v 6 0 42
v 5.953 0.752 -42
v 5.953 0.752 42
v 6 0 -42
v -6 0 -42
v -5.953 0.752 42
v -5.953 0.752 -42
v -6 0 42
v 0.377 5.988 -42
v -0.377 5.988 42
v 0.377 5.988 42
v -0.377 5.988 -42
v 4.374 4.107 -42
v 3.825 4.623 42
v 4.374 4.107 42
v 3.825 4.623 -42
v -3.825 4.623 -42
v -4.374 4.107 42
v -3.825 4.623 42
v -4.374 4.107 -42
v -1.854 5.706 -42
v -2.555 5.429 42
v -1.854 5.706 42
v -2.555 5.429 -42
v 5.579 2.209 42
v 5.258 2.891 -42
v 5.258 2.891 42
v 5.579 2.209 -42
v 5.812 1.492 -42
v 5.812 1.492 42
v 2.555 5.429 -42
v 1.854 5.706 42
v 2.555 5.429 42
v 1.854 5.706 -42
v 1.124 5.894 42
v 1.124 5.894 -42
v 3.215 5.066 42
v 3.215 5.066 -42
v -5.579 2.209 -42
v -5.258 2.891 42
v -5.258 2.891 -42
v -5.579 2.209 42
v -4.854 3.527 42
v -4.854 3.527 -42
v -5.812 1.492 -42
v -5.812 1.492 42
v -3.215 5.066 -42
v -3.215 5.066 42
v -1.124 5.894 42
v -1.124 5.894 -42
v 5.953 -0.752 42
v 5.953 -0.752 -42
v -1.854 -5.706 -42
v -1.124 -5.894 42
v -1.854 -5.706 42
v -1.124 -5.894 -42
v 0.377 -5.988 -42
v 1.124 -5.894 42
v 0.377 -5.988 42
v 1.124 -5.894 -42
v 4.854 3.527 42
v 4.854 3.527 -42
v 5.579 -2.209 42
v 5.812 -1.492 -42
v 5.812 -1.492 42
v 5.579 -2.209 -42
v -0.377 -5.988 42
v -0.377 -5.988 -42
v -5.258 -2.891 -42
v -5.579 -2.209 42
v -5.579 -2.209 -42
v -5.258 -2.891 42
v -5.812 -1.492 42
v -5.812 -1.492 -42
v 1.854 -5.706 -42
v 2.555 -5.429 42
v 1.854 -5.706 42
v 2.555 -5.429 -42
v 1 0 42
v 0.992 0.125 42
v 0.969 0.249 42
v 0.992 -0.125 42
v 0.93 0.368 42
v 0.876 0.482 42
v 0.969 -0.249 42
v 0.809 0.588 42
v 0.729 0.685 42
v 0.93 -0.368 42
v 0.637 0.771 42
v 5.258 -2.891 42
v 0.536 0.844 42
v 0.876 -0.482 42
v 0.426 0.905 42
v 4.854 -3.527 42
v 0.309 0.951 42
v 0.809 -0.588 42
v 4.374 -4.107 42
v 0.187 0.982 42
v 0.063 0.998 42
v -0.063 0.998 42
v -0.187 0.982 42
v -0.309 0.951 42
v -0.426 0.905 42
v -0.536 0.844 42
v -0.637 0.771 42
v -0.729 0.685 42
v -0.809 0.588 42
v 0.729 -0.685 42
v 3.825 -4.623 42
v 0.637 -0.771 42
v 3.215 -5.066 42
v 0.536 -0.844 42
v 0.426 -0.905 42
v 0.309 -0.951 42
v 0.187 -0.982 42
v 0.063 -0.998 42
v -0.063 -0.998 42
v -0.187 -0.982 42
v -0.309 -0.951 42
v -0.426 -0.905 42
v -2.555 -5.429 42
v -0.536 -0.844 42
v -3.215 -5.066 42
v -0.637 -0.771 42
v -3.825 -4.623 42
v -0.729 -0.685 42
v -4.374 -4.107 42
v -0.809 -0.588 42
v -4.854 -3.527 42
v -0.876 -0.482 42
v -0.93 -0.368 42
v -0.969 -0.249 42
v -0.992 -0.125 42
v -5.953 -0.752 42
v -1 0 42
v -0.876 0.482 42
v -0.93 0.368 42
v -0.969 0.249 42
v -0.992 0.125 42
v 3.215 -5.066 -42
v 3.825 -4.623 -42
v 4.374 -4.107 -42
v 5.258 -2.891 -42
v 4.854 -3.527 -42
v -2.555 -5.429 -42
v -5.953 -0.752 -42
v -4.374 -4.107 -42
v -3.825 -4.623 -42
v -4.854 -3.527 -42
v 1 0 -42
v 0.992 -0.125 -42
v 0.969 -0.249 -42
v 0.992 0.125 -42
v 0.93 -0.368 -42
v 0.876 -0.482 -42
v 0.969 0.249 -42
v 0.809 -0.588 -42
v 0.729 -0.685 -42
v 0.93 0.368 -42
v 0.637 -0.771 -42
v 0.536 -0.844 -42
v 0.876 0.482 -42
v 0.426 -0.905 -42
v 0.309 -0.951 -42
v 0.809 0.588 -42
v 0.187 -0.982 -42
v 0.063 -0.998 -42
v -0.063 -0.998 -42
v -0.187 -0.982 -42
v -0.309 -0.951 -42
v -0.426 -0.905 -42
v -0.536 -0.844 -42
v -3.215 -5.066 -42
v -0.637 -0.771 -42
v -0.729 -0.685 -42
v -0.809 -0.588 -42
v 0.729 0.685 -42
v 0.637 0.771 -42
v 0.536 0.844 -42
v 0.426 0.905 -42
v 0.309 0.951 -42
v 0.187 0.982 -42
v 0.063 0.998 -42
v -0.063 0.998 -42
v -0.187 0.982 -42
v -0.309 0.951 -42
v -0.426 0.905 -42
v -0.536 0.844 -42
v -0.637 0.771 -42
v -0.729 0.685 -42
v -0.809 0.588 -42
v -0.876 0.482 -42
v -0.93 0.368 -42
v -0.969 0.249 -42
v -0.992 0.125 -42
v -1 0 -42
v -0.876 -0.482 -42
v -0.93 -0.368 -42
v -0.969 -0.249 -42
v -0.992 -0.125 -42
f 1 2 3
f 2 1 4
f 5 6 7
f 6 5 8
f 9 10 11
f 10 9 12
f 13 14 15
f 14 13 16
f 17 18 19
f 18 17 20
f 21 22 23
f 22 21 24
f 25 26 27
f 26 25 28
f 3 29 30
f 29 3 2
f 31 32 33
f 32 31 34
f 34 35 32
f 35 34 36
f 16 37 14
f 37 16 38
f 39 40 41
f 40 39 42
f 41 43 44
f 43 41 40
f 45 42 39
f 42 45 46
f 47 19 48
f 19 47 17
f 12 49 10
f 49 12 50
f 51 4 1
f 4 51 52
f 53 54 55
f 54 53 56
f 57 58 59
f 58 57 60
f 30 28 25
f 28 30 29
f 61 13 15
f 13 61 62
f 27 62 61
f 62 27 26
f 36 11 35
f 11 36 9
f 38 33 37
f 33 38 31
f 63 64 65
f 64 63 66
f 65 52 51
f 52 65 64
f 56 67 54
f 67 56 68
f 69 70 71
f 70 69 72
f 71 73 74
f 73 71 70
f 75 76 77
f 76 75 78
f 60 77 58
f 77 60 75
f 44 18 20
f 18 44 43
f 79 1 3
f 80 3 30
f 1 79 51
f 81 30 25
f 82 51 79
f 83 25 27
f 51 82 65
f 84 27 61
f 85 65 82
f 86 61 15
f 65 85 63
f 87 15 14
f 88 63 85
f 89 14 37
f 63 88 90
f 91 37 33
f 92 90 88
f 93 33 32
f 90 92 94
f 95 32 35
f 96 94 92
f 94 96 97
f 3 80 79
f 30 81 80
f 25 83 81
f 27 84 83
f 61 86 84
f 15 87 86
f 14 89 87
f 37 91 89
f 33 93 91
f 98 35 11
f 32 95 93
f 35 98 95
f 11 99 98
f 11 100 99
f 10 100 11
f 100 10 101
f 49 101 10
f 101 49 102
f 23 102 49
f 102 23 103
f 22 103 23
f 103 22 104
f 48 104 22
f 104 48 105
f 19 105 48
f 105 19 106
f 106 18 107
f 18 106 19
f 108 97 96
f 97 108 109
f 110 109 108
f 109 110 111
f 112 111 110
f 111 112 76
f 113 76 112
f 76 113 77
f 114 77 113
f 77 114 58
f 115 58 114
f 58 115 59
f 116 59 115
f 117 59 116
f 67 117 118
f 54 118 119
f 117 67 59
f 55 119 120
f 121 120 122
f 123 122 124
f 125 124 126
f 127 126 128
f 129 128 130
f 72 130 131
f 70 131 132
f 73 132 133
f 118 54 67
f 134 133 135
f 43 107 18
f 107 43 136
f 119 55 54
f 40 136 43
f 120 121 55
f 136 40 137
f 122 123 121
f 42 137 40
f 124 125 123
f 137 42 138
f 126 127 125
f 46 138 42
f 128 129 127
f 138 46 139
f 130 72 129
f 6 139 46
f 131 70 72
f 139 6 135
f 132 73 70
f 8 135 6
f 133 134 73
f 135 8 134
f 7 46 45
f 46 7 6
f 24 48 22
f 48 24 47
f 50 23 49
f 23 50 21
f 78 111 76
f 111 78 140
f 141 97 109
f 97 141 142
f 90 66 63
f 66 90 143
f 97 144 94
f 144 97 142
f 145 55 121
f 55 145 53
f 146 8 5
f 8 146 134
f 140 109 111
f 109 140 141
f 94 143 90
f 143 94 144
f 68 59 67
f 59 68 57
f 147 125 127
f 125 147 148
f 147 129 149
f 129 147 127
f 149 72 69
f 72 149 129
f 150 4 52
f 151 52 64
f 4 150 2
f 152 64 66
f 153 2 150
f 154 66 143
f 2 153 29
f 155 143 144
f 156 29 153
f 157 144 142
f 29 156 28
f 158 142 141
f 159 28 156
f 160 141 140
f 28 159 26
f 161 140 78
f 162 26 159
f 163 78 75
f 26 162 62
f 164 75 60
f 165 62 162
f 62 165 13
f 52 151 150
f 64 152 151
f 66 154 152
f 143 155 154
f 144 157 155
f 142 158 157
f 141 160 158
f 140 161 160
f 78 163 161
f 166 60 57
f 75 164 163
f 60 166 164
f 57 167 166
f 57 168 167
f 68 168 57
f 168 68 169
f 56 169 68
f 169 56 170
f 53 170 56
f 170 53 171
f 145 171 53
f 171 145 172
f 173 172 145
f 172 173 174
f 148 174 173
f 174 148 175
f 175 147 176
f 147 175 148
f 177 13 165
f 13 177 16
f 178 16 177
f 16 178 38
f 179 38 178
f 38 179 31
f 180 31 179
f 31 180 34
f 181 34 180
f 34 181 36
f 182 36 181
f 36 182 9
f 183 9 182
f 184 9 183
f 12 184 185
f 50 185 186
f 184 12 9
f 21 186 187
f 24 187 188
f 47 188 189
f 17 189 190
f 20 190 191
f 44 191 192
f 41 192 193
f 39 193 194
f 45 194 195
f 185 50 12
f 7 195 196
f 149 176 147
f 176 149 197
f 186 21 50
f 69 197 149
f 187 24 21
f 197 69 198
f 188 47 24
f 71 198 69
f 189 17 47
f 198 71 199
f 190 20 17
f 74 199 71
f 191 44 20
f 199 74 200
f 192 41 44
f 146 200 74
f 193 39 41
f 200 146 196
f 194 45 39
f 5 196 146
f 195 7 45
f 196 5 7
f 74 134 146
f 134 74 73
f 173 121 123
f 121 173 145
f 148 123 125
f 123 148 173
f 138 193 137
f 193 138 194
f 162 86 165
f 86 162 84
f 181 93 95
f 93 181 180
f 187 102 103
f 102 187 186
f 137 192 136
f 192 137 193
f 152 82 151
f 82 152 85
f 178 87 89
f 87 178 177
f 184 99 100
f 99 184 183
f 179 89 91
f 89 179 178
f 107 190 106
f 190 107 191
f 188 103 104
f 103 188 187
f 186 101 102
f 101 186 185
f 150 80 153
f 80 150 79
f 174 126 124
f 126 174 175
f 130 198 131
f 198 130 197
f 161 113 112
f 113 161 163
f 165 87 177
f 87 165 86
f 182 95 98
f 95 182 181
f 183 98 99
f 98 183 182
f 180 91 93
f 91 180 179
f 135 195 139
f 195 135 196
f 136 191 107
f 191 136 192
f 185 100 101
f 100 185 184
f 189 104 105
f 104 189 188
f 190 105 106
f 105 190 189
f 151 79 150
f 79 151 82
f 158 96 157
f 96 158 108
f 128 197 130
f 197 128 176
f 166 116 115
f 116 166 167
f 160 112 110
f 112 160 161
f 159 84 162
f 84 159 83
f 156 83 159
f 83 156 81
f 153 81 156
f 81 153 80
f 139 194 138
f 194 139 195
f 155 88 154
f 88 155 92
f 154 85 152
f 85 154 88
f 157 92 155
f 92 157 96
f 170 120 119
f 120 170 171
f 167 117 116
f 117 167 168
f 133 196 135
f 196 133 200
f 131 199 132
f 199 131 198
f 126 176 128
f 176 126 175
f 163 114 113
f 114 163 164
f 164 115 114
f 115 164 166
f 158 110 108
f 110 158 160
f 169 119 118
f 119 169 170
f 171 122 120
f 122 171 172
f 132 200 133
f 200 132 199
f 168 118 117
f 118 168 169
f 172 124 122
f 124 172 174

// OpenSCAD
$fn = 50;


difference() {
	union() {
		translate(v = [0, 0, -42.0000000000]) {
			cylinder(h = 84, r = 6.0000000000);
		}
	}
	union() {
		translate(v = [0, 0, -100.0000000000]) {
			cylinder(h = 200, r = 1.0000000000);
		}
	}
}
